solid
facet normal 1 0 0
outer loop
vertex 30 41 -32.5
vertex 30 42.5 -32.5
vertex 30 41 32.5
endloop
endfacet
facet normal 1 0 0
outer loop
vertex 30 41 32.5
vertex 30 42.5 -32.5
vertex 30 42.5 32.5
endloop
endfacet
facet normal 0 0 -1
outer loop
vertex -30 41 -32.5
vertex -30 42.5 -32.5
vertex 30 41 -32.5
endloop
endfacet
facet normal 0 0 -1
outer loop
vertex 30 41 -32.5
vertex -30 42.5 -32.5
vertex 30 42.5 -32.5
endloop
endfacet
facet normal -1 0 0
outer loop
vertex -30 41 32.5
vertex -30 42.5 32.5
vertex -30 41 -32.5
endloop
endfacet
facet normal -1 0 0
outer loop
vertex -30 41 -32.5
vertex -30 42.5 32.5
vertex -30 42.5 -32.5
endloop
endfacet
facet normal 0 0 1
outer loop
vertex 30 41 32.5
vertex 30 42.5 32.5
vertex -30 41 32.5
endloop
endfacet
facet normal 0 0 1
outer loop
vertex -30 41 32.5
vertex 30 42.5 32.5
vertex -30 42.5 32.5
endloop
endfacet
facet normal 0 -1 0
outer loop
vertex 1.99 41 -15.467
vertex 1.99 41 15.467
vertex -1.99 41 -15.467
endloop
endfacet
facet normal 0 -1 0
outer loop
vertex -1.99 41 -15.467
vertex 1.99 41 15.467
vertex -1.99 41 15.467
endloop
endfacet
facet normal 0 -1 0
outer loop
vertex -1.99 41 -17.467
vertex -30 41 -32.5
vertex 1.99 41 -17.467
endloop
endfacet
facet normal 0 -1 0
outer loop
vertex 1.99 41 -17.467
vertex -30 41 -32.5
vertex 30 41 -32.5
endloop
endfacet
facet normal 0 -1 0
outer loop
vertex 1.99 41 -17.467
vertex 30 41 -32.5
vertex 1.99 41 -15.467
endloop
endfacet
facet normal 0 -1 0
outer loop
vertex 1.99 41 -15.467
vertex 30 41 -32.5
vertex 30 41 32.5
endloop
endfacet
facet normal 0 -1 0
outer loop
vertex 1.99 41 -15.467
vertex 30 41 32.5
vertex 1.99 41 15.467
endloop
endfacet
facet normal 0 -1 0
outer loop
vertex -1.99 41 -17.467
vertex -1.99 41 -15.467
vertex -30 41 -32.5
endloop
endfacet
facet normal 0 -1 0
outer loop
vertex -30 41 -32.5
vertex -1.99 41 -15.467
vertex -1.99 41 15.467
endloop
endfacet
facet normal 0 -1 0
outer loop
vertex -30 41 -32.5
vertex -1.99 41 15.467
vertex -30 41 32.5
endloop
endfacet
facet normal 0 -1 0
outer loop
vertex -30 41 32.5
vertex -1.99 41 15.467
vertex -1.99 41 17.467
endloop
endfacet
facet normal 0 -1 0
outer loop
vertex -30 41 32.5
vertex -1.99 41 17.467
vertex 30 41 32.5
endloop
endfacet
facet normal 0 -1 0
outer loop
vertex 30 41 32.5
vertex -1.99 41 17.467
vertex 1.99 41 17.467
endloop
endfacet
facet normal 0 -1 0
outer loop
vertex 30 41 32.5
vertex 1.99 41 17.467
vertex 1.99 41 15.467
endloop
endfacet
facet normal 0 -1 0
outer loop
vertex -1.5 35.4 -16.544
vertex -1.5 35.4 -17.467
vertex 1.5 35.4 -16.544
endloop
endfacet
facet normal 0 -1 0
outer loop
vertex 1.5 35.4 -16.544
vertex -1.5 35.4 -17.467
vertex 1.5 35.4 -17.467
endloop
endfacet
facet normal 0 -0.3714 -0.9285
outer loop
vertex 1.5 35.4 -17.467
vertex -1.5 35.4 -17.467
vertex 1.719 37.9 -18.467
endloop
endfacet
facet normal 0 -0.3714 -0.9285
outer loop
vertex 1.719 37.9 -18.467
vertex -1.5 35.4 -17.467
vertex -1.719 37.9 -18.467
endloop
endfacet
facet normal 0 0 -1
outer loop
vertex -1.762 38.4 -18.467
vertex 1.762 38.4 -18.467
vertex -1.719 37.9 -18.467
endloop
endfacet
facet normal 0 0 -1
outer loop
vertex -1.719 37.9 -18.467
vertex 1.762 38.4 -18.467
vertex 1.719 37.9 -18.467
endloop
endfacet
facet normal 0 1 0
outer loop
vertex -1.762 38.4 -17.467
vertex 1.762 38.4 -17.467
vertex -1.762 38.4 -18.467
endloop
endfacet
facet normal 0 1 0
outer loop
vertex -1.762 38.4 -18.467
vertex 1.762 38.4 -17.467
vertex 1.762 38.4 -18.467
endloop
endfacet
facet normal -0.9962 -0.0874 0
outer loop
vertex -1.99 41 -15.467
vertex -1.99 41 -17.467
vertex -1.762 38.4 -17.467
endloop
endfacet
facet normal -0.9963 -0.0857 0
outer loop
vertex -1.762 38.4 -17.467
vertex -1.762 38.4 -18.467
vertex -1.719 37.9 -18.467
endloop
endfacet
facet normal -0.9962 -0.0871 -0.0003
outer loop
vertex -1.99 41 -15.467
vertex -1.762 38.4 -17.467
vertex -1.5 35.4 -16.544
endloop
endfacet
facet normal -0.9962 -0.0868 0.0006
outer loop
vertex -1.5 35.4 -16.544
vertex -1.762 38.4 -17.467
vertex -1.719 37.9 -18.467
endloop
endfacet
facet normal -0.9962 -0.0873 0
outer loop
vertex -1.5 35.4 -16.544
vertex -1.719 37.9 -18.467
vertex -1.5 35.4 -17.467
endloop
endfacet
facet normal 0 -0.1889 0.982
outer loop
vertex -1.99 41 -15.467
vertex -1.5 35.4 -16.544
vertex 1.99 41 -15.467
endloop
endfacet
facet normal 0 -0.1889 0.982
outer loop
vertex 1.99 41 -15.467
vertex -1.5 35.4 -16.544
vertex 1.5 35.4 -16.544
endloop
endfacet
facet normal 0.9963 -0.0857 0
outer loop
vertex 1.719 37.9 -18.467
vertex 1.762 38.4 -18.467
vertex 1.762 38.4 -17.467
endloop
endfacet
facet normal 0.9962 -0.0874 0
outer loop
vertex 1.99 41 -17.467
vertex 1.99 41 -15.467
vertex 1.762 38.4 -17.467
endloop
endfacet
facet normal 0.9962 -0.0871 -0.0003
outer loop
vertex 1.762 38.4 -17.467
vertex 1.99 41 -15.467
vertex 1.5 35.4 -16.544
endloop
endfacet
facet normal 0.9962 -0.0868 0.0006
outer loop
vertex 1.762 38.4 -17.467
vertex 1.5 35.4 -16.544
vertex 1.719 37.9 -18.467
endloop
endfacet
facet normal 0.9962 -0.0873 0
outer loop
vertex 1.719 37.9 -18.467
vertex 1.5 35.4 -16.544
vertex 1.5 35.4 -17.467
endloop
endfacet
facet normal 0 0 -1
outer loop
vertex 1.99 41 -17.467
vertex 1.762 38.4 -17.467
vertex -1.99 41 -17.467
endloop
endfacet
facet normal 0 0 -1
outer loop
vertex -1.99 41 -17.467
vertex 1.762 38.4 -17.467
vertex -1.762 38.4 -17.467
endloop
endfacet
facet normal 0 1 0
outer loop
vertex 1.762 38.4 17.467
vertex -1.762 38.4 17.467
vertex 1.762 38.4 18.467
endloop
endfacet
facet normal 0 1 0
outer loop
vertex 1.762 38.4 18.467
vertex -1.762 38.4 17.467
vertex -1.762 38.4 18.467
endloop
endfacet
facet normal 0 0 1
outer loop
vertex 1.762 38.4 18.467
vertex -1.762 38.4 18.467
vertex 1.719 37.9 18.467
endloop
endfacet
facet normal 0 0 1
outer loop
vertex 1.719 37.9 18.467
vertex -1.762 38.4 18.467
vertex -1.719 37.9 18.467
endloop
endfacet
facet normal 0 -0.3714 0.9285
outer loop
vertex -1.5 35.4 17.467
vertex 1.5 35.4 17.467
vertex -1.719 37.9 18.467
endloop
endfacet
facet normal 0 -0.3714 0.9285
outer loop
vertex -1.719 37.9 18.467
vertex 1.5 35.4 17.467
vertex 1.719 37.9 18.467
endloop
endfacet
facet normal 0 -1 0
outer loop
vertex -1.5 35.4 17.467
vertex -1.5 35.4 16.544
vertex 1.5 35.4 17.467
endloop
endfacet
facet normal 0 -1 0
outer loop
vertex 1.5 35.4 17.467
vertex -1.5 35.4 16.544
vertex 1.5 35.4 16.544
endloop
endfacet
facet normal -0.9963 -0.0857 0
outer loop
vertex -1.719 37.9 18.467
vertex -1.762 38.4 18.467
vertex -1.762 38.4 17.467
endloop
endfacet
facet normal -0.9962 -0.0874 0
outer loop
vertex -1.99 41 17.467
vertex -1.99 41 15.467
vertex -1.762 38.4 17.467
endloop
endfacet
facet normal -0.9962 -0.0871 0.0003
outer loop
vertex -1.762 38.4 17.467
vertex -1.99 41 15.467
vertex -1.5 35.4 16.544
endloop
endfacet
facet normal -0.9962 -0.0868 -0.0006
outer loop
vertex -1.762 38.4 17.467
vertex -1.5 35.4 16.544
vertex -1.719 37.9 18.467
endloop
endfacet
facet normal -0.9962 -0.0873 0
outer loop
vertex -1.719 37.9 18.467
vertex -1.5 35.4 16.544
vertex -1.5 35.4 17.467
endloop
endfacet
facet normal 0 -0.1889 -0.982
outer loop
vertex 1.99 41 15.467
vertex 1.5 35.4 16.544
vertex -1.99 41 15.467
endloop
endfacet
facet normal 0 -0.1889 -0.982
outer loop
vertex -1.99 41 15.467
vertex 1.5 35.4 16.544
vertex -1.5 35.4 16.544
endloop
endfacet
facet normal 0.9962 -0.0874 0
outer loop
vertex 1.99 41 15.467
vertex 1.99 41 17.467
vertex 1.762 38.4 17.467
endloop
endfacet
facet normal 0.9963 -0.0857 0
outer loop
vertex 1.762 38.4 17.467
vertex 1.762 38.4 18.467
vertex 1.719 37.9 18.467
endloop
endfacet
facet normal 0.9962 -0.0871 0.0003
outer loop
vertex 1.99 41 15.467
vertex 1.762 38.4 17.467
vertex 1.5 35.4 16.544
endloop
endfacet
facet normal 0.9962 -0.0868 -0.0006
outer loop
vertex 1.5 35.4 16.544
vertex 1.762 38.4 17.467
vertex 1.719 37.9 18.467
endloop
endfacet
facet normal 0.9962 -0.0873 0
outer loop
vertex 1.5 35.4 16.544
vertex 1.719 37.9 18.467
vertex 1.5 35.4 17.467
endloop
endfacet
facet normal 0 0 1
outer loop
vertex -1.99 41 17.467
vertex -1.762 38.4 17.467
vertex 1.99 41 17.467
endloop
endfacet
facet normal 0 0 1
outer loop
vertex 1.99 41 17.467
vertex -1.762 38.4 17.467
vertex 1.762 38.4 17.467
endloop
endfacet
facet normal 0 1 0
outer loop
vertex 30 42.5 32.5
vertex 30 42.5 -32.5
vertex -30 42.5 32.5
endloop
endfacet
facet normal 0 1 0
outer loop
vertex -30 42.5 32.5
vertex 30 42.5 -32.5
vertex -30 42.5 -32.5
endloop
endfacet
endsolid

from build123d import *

# Parameters (mm, degrees)
SKETCH1_W               = 60
SKETCH1_H               = 65
SKETCH1_W_2             = 55
SKETCH1_H_2             = 60
BOSS_EXTRUDE1_DEPTH     = 40
SKETCH2_W               = 60
SKETCH2_H               = 65
BOSS_EXTRUDE2_DEPTH     = 2.5
BOSS_EXTRUDE3_DEPTH     = 65
CUT_EXTRUDE1_REACH      = 83.03
CUT_EXTRUDE2_DEPTH      = 84.873058845
CUT_EXTRUDE2_DEPTH_BACK = 84.873058845
SKETCH5_W               = 60
SKETCH5_H               = 41
SNAP_START              = -17.466738465
SNAP_HOOK1_DEPTH        = 0.923076923
SNAP_START_2            = -1.762465991
SNAP_HOOK1_2_DEPTH      = 3.524931982
SNAP_START_3            = -1.989936516
SNAP_HOOK1_3_DEPTH      = 3.979873032
SNAP_START_4            = -19
SNAP_HOOK1_4_DEPTH      = 5
CUT_EXTRUDE3_DEPTH      = 73.867619695
CUT_EXTRUDE3_DEPTH_BACK = 73.867619695
SKETCH6_W               = 60.42921797
SKETCH6_H               = 2.598338556


with BuildPart() as part:
    # Sketch1 → Boss-Extrude1 (new body)
    with BuildSketch(Plane(origin=(0, 0, 0), x_dir=(1, 0, 0), z_dir=(0, 1, 0))):
        Rectangle(SKETCH1_W, SKETCH1_H)
        Rectangle(SKETCH1_W_2, SKETCH1_H_2, mode=Mode.SUBTRACT)
    extrude(amount=BOSS_EXTRUDE1_DEPTH)

    # Sketch2 → Boss-Extrude2 (add)
    with BuildSketch(Plane(origin=(0, 40, 0), x_dir=(1, 0, 0), z_dir=(0, 1, 0))):
        Rectangle(SKETCH2_W, SKETCH2_H)
    extrude(amount=BOSS_EXTRUDE2_DEPTH)

    # Sketch3 → Boss-Extrude3 (add)
    with BuildSketch(Plane(origin=(0, 0, -32.5), x_dir=(-1, 0, 0), z_dir=(0, 0, -1))):
        Polygon((-30, 42.5), (-28.8, 43.7), (-27.6, 42.5), (-26.4, 43.7), (-25.2, 42.5), (-24, 43.7), (-22.8, 42.5), (-21.6, 43.7), (-20.4, 42.5), (-19.2, 43.7), (-18, 42.5), (-16.8, 43.7), (-15.6, 42.5), (-14.4, 43.7), (-13.2, 42.5), (-12, 43.7), (-10.8, 42.5), (-9.6, 43.7), (-8.4, 42.5), (-7.2, 43.7), (-6, 42.5), (-4.8, 43.7), (-3.6, 42.5), (-2.4, 43.7), (-1.2, 42.5), (0, 43.7), (1.2, 42.5), (2.4, 43.7), (3.6, 42.5), (4.8, 43.7), (6, 42.5), (7.2, 43.7), (8.4, 42.5), (9.6, 43.7), (10.8, 42.5), (12, 43.7), (13.2, 42.5), (14.4, 43.7), (15.6, 42.5), (16.8, 43.7), (18, 42.5), (19.2, 43.7), (20.4, 42.5), (21.6, 43.7), (22.8, 42.5), (24, 43.7), (25.2, 42.5), (26.4, 43.7), (27.6, 42.5), (28.8, 43.7), (30, 42.5), (30, 42.170064374), (-30, 42.170064374), align=None)
    extrude(amount=-BOSS_EXTRUDE3_DEPTH)

    # Cut-Extrude1: up to this face of the body (flat: up to its plane)
    cut_extrude1_end = Plane(part.part.faces().sort_by_distance((30, 21.25, 0))[0])
    # Sketch4 → Cut-Extrude1 (cut, up to the picked face)
    with BuildSketch(Plane.ZY.offset(30), mode=Mode.PRIVATE) as cut_extrude1_sk1:
        with BuildLine():
            Line((-32.5, 42.5), (-32.5, 43.7))
            Line((-32.5, 43.7), (-31.3, 43.7))
            ThreePointArc((-31.3, 43.7), (-32.148528137, 43.348528137), (-32.5, 42.5))
        make_face()
    cut_extrude1_tool1 = split(extrude(cut_extrude1_sk1.sketch, amount=-CUT_EXTRUDE1_REACH, mode=Mode.PRIVATE), bisect_by=cut_extrude1_end, keep=Keep.BOTH, mode=Mode.PRIVATE)
    cut_extrude1 = cut_extrude1_tool1.solids().sort_by(Axis((-30, 43.431958, -32.231958), (1, 0, 0)))[0]
    add(cut_extrude1, mode=Mode.SUBTRACT)

    # Mirror1: Cut-Extrude1 across plane
    add(cut_extrude1.mirror(Plane.XY), mode=Mode.SUBTRACT)

    # Sketch5 → Cut-Extrude2 (cut, two sides: drawn at the far end of the back side and taken through both)
    with BuildSketch(Plane.XY.offset(32.5).offset(-CUT_EXTRUDE2_DEPTH_BACK)):
        with Locations((0, 20.5)):
            Rectangle(SKETCH5_W, SKETCH5_H)
    extrude(amount=CUT_EXTRUDE2_DEPTH + CUT_EXTRUDE2_DEPTH_BACK, mode=Mode.SUBTRACT)

    # Snap Hook1: read off the stored shape, not the designer's step
    # Snap Hook1 outline → Snap Hook1 (add)
    with BuildSketch(Plane.XY.offset(SNAP_START)):
        Polygon((-1.5, 35.4), (1.5, 35.4), (1.989936516, 41), (-1.989936516, 41), align=None)
    snap_hook1 = extrude(amount=SNAP_HOOK1_DEPTH)

    # Snap Hook1 2 outline → Snap Hook1 2 (add)
    with BuildSketch(Plane.YZ.offset(SNAP_START_2)):
        Polygon((38.4, -17.466738465), (35.4, -17.466738465), (37.9, -18.466738465), (38.4, -18.466738465), align=None)
        Polygon((35.4, -16.543661542), (41, -16.543661542), (41, -15.466738465), align=None)
    snap_hook1_2 = extrude(amount=SNAP_HOOK1_2_DEPTH)

    # Snap Hook1 3 outline → Snap Hook1 3 (add)
    with BuildSketch(Plane.YZ.offset(SNAP_START_3)):
        Polygon((35.4, -16.543661542), (41, -16.543661542), (41, -15.466738465), align=None)
    snap_hook1_3 = extrude(amount=SNAP_HOOK1_3_DEPTH)

    # Snap Hook1 4 outline → Snap Hook1 4 (cut)
    with BuildSketch(Plane.XY.offset(SNAP_START_4)):
        Polygon((-1.989936516, 41), (-1.989936516, 34), (-1.377515871, 34), align=None)
        Polygon((1.377515871, 34), (1.989936516, 34), (1.989936516, 41), align=None)
    snap_hook1_4 = extrude(amount=SNAP_HOOK1_4_DEPTH, mode=Mode.SUBTRACT)

    # Mirror2: Snap Hook1, Snap Hook1 2, Snap Hook1 3, Snap Hook1 4 across plane
    add(snap_hook1.mirror(Plane.XY))
    add(snap_hook1_2.mirror(Plane.XY))
    add(snap_hook1_3.mirror(Plane.XY))
    add(snap_hook1_4.mirror(Plane.XY), mode=Mode.SUBTRACT)

    # Sketch6 → Cut-Extrude3 (cut, two sides: drawn at the far end of the back side and taken through both)
    with BuildSketch(Plane(origin=(0, 0, -17.5), x_dir=(-1, 0, 0), z_dir=(0, 0, -1)).offset(-CUT_EXTRUDE3_DEPTH_BACK)):
        with Locations((0.214608985, 43.799169278)):
            Rectangle(SKETCH6_W, SKETCH6_H)
    extrude(amount=CUT_EXTRUDE3_DEPTH + CUT_EXTRUDE3_DEPTH_BACK, mode=Mode.SUBTRACT)


solid = part.part
